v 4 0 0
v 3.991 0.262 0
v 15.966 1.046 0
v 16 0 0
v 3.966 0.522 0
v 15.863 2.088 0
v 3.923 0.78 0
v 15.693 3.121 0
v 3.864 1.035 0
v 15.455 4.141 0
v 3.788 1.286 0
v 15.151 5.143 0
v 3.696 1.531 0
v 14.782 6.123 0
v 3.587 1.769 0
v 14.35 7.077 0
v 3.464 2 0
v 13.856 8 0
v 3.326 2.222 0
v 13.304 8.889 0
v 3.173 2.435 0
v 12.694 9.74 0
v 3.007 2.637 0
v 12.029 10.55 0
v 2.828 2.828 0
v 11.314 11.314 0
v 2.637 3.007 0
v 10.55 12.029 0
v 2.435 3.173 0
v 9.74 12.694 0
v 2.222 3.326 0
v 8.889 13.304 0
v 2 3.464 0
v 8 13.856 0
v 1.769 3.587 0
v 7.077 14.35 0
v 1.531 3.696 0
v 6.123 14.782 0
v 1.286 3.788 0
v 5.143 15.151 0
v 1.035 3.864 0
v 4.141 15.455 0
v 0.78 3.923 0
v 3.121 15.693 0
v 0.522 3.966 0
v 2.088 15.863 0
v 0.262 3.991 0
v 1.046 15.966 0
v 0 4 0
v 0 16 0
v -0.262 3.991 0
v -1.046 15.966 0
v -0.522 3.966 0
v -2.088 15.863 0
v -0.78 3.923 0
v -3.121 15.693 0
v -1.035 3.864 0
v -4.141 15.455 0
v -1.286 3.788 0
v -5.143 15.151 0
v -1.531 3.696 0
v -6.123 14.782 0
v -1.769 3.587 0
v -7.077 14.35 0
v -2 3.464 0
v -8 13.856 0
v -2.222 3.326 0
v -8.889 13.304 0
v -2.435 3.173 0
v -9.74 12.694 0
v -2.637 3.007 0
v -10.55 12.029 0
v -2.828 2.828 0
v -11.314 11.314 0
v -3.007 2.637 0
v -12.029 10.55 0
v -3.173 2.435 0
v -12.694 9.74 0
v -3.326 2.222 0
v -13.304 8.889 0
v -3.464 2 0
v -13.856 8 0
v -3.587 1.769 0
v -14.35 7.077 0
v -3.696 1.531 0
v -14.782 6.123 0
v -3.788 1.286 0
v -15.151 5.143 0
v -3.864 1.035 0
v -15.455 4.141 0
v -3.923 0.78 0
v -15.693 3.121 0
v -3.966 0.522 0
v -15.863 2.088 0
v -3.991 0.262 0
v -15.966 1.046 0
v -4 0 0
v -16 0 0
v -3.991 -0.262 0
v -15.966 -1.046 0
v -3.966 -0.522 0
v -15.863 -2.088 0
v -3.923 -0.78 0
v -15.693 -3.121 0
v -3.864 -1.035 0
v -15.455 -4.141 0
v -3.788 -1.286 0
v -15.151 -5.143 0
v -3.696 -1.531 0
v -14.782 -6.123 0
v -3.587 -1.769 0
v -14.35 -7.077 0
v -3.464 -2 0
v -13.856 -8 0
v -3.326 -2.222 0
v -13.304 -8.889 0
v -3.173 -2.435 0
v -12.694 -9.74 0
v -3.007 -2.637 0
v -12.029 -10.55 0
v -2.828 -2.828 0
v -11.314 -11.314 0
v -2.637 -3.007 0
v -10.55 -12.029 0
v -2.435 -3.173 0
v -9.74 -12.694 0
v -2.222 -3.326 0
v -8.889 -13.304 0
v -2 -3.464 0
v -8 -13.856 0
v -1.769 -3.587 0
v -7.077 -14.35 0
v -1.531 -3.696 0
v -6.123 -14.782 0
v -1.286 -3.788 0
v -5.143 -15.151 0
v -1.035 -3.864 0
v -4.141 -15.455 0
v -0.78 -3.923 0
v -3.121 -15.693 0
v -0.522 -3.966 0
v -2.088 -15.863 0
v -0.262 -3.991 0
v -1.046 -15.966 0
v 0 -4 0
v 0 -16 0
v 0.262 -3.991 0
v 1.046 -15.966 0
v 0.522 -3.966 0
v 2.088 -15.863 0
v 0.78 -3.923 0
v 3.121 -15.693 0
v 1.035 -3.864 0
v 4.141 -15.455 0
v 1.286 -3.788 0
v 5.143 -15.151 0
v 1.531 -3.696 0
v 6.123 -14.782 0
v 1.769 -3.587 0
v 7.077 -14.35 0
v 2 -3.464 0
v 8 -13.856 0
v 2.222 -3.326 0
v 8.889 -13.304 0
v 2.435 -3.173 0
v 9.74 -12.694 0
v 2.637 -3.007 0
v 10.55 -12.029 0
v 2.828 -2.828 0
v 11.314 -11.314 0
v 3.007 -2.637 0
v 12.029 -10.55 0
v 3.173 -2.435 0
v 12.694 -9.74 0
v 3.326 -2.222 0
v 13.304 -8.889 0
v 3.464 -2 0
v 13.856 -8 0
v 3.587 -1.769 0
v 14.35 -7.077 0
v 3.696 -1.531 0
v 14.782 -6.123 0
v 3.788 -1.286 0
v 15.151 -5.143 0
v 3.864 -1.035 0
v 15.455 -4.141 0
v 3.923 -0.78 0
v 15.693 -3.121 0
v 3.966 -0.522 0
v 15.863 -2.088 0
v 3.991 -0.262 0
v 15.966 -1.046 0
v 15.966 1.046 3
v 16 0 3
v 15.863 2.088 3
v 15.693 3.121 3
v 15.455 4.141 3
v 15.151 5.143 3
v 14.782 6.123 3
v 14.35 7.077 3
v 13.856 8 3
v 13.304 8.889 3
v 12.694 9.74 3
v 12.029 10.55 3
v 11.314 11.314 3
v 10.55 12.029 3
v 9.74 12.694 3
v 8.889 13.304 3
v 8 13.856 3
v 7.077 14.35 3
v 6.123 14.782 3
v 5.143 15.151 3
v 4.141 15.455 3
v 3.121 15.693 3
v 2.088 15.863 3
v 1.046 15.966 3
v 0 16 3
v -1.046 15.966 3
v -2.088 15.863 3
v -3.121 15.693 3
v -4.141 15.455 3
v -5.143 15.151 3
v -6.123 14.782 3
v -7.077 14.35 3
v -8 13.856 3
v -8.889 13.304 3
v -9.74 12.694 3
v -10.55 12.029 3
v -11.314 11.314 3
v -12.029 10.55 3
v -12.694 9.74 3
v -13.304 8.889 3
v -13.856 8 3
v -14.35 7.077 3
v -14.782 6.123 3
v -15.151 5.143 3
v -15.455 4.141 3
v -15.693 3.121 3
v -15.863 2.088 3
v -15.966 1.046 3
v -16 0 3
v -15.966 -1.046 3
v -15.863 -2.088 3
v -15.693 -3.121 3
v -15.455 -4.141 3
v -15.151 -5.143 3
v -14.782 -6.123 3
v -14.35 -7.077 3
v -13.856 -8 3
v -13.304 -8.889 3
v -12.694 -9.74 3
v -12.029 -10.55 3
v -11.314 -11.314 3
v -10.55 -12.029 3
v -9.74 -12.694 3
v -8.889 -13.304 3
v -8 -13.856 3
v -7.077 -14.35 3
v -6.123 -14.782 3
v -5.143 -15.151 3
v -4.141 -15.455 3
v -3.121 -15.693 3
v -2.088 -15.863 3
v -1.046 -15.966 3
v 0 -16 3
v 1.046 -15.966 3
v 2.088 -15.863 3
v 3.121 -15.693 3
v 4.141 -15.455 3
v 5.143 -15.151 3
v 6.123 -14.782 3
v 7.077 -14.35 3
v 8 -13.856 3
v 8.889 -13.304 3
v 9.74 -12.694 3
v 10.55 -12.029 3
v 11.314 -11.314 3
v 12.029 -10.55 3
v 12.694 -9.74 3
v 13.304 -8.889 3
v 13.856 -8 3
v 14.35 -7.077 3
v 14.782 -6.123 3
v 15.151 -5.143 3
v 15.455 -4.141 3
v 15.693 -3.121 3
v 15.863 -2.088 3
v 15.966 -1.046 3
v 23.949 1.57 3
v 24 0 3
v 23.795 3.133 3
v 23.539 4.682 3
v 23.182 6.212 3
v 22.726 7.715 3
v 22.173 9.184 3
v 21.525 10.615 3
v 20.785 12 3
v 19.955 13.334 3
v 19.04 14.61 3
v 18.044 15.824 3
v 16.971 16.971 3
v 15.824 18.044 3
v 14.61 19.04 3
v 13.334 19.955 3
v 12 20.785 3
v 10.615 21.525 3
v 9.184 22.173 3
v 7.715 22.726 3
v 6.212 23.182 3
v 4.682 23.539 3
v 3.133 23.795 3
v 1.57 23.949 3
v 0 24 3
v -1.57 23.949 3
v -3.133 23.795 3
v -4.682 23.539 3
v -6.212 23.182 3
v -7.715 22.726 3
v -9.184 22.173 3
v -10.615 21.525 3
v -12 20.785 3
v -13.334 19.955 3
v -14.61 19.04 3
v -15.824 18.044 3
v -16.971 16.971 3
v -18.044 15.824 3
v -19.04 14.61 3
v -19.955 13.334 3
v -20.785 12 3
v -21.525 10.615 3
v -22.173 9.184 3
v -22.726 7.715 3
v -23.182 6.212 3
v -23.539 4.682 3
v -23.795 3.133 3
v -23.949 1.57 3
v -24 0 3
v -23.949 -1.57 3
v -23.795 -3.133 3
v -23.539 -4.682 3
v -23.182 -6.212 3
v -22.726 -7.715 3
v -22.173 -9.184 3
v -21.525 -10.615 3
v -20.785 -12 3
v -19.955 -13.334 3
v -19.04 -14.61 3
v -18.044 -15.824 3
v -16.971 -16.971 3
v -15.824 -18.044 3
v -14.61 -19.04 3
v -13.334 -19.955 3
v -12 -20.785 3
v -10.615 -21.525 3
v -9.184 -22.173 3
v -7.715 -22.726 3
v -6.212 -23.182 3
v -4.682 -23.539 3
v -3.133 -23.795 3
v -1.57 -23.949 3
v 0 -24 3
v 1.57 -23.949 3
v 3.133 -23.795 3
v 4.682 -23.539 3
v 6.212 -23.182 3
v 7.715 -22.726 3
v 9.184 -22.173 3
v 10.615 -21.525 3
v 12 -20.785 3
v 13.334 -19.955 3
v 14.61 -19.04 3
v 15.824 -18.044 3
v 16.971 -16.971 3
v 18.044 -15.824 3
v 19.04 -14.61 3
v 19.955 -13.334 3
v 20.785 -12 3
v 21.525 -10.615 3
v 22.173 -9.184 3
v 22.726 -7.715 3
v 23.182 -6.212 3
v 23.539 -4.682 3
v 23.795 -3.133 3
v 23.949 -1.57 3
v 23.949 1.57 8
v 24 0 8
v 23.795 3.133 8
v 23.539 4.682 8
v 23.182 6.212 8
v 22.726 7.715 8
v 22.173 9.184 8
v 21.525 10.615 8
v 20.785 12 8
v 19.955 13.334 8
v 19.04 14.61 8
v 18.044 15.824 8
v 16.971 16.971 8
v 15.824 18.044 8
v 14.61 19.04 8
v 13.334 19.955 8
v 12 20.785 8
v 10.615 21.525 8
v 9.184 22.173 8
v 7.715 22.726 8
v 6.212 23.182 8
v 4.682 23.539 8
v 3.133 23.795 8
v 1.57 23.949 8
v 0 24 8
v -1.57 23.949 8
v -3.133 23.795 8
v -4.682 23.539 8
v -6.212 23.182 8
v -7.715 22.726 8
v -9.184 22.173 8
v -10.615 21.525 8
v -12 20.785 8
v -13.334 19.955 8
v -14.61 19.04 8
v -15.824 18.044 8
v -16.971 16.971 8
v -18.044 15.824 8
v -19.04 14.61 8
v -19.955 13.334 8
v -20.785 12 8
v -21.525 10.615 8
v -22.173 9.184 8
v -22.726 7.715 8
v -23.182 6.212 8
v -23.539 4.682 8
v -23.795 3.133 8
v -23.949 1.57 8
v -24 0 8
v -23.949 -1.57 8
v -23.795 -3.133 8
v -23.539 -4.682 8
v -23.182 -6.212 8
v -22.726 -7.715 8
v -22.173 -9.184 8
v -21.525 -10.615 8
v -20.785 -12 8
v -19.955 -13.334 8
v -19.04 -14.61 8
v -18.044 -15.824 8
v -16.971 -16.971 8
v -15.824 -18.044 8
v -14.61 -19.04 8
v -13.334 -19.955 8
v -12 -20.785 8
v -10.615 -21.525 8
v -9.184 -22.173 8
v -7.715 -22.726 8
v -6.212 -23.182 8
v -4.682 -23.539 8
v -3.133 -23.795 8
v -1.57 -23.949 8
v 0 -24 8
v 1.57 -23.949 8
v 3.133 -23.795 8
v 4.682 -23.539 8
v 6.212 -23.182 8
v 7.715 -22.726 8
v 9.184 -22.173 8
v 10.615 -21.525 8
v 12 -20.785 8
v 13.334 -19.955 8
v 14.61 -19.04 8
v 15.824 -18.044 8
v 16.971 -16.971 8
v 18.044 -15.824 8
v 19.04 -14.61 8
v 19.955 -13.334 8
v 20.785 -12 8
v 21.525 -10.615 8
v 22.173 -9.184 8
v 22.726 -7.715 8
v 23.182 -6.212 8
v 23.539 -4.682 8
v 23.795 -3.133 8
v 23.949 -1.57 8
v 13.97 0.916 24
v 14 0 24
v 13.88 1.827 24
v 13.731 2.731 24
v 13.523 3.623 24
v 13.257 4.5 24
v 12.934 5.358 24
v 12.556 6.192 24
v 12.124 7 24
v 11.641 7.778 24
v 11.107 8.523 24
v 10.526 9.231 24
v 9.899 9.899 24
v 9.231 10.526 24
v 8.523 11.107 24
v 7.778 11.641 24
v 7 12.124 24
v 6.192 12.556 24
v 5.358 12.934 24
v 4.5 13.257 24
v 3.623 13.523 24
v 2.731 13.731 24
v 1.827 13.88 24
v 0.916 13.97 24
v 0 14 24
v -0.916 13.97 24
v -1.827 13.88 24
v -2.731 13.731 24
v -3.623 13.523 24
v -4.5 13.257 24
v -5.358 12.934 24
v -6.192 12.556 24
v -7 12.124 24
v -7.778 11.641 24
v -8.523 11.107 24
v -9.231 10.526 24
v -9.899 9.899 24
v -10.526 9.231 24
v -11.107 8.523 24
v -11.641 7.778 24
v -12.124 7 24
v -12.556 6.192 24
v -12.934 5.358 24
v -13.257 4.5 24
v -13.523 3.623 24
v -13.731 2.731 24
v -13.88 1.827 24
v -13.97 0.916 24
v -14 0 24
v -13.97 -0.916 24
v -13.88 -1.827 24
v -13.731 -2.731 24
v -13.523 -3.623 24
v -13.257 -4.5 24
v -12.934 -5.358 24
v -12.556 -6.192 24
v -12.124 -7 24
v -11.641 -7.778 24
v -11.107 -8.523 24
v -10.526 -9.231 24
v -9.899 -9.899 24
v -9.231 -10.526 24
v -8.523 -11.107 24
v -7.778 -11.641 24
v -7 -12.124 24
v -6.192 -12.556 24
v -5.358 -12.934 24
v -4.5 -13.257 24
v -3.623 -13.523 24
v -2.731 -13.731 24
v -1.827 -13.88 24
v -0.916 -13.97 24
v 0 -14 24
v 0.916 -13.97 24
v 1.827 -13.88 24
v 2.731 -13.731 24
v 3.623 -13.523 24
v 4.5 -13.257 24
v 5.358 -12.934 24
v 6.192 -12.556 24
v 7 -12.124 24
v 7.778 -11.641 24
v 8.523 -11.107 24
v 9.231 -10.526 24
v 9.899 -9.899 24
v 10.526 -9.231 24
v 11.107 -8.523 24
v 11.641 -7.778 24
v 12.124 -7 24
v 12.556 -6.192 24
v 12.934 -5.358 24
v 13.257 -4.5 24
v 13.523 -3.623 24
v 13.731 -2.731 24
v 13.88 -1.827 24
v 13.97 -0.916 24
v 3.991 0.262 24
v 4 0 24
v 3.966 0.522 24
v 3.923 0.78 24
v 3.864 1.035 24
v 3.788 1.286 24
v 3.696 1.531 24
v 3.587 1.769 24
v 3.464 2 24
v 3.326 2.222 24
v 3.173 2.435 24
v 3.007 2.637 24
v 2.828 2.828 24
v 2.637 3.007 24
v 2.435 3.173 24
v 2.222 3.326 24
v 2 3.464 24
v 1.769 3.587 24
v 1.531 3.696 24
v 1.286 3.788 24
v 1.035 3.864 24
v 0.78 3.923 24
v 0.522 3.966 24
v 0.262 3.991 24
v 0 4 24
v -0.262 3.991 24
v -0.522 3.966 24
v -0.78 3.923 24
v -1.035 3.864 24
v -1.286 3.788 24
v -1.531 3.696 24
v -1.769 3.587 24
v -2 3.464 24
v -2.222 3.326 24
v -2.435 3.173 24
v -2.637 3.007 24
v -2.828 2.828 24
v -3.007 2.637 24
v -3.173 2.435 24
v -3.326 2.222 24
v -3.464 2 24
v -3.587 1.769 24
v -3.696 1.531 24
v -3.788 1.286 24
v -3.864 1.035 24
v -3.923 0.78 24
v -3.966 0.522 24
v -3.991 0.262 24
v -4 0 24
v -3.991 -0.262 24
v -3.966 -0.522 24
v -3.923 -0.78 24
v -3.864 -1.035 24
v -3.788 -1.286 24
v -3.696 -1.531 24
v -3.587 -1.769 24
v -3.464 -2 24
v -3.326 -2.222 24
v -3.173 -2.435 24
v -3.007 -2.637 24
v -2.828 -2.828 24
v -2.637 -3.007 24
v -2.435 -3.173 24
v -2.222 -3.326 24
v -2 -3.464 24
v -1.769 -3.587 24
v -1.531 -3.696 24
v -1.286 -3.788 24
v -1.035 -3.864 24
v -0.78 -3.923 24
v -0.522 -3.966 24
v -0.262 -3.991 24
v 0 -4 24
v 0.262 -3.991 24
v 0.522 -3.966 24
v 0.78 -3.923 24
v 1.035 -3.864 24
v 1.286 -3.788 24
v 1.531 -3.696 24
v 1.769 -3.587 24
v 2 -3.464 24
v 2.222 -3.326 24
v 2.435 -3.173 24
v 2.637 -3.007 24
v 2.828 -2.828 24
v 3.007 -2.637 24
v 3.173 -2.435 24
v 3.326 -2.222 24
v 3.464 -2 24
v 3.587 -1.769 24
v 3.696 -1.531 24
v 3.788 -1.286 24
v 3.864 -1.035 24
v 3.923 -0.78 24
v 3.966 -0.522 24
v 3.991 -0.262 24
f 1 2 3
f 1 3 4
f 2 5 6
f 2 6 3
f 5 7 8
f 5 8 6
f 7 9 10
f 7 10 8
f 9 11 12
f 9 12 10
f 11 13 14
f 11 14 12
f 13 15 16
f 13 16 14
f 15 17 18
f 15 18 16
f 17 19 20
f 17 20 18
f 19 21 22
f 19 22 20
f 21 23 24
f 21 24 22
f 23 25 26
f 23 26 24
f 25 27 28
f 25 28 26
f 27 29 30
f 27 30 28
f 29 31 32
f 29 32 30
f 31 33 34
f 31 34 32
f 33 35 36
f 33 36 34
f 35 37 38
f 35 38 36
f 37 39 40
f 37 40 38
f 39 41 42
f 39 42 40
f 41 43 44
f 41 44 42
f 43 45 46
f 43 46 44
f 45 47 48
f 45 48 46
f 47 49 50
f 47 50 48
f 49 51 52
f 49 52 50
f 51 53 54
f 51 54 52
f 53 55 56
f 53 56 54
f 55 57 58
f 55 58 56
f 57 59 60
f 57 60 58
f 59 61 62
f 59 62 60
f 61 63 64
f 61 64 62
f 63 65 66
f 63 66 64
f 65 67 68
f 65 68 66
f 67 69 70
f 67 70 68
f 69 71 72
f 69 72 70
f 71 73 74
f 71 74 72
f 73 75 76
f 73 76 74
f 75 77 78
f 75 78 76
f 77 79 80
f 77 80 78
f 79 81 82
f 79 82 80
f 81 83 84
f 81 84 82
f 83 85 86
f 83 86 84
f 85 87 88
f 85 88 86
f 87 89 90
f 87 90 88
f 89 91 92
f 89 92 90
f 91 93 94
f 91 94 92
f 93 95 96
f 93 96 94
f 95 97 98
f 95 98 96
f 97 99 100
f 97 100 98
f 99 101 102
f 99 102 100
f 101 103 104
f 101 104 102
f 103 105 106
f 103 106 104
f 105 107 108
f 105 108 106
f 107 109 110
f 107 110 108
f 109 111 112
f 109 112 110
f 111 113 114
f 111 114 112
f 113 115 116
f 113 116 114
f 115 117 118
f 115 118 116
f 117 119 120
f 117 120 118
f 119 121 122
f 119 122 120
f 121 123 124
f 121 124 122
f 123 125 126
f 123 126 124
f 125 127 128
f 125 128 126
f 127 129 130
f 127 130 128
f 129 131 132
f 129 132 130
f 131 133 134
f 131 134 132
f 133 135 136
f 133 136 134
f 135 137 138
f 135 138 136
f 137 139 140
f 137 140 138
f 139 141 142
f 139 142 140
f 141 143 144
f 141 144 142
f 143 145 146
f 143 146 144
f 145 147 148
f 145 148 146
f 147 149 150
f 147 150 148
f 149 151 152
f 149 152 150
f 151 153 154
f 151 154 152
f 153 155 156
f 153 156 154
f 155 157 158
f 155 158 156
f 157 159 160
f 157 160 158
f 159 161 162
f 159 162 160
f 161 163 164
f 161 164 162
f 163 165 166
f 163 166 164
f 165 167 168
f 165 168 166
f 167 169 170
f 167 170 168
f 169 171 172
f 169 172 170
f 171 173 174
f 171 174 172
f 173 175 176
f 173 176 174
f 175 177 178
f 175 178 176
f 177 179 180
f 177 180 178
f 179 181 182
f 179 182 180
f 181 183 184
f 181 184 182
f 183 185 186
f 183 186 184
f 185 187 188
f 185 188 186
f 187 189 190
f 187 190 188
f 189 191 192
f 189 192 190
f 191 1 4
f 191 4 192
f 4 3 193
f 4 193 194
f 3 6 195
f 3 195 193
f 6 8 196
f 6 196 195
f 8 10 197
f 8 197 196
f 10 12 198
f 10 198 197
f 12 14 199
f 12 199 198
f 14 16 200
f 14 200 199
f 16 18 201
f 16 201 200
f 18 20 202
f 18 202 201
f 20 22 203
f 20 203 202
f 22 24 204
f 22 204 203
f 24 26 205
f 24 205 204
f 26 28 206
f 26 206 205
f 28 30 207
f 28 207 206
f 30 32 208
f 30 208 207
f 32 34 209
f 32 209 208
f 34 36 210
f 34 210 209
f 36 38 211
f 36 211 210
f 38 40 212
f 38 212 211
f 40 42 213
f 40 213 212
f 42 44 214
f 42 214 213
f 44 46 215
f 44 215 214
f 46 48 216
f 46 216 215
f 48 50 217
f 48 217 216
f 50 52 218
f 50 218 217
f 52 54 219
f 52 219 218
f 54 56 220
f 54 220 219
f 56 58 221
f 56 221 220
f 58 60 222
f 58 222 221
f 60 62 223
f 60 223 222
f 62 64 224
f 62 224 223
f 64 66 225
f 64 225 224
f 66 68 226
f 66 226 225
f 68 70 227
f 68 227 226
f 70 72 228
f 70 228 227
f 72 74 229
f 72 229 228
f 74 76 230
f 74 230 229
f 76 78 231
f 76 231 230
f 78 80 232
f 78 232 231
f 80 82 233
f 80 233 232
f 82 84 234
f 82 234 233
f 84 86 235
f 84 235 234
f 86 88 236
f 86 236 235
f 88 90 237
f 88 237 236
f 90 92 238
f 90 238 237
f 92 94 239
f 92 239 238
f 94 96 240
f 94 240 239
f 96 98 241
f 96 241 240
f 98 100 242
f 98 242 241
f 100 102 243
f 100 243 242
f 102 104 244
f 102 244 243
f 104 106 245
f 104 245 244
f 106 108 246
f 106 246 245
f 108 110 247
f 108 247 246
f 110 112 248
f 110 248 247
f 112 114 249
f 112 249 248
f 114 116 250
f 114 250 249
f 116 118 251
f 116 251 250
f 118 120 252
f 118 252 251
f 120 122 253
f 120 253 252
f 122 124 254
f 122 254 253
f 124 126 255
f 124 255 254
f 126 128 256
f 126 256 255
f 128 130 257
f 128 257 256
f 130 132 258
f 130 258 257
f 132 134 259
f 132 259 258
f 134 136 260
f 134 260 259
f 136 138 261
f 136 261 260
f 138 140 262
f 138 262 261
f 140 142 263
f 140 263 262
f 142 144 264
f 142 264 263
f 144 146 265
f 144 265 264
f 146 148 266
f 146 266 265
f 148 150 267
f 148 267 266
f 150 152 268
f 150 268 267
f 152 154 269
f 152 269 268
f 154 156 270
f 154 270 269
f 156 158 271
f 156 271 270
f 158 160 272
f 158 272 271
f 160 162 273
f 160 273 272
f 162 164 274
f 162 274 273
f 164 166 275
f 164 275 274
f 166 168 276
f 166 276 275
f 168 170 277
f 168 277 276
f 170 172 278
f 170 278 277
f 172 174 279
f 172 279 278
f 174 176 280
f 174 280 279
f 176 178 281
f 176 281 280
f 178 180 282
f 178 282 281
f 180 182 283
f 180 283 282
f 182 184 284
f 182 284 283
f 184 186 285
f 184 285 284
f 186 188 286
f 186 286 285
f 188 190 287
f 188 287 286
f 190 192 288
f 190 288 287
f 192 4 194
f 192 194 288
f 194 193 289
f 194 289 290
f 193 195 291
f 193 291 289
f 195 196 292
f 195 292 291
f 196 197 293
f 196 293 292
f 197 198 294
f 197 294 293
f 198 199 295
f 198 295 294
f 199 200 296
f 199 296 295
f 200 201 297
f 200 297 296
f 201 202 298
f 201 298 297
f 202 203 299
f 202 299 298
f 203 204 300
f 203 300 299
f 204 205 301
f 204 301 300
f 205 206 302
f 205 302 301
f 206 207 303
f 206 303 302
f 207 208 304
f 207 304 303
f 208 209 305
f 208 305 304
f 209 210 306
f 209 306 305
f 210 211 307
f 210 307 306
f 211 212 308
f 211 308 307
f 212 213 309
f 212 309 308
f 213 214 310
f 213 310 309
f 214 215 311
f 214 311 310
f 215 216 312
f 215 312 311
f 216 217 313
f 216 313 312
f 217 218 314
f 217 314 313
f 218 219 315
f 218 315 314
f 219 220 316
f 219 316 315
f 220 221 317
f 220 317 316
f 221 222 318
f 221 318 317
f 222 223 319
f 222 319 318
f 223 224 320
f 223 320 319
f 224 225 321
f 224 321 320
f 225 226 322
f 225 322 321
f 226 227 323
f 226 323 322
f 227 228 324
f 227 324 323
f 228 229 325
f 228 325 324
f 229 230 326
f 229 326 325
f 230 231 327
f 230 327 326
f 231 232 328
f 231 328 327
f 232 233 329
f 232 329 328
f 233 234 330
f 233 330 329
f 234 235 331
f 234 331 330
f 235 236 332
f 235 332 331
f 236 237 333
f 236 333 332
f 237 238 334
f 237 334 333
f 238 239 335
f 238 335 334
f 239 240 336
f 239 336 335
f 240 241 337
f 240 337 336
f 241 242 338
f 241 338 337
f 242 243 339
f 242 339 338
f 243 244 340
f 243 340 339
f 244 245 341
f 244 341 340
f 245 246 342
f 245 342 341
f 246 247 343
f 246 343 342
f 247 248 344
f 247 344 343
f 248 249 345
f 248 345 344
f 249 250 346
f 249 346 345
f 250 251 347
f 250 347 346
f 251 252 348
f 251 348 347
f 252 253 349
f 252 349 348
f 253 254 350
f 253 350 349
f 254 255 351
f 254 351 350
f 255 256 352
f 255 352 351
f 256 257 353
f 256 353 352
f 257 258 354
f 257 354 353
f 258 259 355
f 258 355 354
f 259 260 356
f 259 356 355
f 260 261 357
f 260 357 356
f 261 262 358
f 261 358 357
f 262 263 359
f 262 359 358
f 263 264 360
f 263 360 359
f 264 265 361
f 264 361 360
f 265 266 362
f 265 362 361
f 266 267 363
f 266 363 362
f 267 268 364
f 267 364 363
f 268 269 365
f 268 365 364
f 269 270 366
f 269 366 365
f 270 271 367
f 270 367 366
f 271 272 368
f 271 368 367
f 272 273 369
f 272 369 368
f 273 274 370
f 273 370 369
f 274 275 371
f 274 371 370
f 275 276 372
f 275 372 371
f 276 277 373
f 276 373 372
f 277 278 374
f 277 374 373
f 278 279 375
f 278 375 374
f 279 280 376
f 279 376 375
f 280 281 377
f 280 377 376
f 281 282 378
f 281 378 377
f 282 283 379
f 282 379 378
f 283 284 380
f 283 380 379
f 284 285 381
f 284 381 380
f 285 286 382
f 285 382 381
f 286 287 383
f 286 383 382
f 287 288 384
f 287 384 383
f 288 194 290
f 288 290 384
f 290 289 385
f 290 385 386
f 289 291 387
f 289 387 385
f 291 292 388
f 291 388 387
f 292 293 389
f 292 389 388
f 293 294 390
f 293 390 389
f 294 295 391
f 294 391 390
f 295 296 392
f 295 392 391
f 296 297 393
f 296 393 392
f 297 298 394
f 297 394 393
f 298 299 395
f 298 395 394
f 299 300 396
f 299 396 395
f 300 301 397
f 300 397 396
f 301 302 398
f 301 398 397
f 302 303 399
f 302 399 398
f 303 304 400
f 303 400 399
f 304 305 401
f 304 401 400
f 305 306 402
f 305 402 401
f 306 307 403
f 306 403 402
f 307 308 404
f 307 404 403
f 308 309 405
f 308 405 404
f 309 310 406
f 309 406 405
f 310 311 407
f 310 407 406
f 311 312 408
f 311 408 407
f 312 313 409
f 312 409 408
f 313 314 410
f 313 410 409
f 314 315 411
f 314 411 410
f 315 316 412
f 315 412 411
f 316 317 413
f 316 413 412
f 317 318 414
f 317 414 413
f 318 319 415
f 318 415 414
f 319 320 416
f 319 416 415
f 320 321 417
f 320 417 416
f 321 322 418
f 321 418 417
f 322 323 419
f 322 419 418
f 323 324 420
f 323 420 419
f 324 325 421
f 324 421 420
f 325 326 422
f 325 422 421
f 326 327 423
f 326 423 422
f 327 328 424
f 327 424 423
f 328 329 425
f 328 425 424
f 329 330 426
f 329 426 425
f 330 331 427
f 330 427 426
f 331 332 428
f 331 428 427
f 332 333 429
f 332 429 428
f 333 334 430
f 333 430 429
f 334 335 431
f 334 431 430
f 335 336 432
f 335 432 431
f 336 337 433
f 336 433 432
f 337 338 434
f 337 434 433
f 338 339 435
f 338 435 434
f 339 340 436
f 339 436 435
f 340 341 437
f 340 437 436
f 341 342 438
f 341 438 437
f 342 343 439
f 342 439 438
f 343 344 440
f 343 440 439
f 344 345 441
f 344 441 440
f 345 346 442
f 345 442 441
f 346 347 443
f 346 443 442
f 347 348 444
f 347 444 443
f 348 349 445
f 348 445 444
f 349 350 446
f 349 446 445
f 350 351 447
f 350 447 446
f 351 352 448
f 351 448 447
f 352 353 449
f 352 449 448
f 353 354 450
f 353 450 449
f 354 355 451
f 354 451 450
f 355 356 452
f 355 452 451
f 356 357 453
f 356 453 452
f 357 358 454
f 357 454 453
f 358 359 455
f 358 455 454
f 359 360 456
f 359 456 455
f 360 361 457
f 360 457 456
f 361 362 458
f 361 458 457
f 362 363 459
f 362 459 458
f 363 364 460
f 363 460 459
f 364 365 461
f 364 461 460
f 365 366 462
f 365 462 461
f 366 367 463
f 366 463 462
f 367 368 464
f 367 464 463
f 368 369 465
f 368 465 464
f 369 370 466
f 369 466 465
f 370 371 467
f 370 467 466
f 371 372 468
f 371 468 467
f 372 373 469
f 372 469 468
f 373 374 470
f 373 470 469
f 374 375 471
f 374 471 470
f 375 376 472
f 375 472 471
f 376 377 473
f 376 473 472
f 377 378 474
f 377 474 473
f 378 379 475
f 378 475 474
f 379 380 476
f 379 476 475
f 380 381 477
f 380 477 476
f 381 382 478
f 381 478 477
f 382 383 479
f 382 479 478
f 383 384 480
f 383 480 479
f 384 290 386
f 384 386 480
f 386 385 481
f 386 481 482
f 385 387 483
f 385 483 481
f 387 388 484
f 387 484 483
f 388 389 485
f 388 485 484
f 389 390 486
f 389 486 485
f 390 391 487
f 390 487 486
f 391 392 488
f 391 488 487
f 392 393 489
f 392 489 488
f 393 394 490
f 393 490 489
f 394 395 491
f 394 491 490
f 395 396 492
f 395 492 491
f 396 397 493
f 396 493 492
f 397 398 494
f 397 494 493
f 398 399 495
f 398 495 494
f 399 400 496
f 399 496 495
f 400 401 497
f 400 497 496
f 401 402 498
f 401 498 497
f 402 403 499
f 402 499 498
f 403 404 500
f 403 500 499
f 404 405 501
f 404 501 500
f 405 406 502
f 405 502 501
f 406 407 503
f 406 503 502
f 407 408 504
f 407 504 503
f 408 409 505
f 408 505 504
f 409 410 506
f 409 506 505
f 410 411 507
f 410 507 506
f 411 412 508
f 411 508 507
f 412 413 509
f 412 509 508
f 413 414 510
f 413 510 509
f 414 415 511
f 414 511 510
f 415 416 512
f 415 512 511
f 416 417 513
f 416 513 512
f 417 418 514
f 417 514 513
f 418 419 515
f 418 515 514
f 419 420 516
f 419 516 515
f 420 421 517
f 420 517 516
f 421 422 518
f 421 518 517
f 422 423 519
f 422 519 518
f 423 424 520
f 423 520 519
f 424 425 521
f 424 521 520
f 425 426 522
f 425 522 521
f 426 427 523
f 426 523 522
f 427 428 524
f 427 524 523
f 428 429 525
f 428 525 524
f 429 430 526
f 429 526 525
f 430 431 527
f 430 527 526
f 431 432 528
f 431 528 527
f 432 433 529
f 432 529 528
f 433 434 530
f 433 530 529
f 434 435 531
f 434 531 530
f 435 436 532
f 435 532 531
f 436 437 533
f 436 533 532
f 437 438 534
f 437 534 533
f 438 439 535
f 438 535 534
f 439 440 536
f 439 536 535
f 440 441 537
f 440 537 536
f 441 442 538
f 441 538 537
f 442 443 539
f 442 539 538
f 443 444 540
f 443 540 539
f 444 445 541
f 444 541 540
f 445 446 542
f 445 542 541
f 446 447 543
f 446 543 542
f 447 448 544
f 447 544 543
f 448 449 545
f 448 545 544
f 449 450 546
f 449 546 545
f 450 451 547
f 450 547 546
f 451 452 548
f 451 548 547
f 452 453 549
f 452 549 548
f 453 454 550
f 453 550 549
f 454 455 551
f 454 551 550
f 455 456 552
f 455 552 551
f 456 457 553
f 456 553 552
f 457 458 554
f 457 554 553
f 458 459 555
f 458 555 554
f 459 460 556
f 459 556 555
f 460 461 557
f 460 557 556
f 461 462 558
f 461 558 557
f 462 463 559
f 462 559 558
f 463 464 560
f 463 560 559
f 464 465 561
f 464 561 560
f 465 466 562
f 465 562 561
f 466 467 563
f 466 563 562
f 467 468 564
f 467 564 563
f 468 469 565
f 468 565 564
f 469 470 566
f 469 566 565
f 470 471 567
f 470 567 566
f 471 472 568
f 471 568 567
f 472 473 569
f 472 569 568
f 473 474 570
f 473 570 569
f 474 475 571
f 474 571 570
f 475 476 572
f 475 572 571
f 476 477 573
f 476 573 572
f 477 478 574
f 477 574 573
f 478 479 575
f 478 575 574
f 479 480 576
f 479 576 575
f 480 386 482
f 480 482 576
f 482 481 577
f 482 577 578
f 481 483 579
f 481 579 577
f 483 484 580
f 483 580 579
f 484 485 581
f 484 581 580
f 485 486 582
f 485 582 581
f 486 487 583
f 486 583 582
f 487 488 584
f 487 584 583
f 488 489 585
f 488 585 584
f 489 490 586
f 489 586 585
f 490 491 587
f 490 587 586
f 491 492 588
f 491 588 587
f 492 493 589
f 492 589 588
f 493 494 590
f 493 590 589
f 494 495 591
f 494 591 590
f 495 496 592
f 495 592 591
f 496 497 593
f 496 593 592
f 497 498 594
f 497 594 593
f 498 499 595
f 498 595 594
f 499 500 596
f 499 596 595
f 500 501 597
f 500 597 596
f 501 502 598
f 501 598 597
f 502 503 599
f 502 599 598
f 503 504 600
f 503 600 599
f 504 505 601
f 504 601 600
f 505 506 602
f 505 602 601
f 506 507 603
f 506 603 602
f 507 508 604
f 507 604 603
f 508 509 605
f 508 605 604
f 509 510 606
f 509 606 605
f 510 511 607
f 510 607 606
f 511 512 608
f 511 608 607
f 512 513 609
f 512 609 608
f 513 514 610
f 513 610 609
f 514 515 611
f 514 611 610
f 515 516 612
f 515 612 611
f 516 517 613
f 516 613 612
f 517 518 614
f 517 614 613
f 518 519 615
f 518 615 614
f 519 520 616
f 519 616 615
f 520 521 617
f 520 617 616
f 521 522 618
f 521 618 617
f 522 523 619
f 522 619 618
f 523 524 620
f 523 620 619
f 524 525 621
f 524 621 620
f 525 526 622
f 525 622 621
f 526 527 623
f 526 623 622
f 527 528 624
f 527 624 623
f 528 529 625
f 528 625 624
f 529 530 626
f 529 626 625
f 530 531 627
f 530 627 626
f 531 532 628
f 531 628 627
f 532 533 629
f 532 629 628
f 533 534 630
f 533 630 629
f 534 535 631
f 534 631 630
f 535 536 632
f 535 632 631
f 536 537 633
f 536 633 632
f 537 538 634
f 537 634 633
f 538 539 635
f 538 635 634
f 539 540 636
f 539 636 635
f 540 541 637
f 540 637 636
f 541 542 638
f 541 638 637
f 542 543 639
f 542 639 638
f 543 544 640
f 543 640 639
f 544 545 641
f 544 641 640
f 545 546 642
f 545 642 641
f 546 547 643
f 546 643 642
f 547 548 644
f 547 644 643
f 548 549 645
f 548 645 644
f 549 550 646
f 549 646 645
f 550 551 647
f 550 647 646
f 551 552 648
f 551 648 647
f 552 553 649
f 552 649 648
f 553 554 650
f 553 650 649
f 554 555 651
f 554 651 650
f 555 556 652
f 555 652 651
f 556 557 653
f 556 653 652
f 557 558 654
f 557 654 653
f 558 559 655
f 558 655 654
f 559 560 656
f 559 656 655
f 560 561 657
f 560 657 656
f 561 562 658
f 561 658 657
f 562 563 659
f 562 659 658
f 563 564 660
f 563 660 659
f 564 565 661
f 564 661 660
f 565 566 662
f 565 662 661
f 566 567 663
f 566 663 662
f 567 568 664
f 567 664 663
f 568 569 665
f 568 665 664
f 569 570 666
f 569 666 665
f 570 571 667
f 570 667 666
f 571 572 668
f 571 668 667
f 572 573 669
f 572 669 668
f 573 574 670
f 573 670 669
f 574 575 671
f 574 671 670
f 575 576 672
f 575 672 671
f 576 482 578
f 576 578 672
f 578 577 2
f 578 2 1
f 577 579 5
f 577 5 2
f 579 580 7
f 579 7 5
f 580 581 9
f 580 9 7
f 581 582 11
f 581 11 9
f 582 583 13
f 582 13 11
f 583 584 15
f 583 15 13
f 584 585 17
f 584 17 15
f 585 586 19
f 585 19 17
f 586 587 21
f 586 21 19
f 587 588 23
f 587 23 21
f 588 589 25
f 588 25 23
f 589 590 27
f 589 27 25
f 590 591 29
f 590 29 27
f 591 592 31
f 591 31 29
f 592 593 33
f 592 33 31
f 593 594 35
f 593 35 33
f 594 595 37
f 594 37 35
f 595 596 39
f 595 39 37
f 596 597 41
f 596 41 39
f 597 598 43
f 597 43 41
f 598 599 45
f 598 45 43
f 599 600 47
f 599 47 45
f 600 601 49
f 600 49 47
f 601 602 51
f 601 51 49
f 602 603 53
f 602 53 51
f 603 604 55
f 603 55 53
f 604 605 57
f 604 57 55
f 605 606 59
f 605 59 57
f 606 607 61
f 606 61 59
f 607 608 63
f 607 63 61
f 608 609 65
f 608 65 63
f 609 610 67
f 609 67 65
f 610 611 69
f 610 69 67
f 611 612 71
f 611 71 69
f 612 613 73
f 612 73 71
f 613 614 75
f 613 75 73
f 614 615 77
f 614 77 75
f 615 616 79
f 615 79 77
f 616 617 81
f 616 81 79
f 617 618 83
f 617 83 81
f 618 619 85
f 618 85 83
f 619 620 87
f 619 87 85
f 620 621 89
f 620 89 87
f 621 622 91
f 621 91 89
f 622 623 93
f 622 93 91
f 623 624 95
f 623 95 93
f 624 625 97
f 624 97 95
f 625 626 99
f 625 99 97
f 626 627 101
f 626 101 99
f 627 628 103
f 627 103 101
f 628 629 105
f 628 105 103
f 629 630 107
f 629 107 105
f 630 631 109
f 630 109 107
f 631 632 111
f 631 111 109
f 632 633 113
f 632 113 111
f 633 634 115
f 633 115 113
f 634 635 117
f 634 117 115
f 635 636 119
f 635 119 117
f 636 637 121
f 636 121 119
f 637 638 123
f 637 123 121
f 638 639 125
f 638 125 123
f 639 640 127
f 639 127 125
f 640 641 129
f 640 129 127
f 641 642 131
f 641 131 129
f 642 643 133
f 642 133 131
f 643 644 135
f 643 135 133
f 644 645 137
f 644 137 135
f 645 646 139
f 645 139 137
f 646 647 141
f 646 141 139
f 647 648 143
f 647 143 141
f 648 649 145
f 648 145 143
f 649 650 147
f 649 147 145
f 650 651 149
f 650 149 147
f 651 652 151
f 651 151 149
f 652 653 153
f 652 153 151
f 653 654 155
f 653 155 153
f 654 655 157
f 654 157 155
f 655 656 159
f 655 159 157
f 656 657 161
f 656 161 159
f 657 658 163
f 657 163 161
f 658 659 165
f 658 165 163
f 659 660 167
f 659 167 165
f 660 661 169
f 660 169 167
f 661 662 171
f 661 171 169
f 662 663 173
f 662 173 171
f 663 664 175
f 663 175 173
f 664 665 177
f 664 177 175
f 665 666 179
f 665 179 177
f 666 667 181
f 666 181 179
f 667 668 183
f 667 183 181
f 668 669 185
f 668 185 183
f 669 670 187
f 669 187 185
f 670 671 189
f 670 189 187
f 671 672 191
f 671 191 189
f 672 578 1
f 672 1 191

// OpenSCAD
// Original MechIntel educational model. CC0-1.0. Units: mm.
// Not a standardized or load-rated component.
$fn=96;
// Section points: [radius, height], mm. Edit to change the profile.
section=[[4, 0], [16, 0], [16, 3], [24, 3], [24, 8], [14, 24], [4, 24]];
rotate_extrude($fn=96) polygon(points=section);
